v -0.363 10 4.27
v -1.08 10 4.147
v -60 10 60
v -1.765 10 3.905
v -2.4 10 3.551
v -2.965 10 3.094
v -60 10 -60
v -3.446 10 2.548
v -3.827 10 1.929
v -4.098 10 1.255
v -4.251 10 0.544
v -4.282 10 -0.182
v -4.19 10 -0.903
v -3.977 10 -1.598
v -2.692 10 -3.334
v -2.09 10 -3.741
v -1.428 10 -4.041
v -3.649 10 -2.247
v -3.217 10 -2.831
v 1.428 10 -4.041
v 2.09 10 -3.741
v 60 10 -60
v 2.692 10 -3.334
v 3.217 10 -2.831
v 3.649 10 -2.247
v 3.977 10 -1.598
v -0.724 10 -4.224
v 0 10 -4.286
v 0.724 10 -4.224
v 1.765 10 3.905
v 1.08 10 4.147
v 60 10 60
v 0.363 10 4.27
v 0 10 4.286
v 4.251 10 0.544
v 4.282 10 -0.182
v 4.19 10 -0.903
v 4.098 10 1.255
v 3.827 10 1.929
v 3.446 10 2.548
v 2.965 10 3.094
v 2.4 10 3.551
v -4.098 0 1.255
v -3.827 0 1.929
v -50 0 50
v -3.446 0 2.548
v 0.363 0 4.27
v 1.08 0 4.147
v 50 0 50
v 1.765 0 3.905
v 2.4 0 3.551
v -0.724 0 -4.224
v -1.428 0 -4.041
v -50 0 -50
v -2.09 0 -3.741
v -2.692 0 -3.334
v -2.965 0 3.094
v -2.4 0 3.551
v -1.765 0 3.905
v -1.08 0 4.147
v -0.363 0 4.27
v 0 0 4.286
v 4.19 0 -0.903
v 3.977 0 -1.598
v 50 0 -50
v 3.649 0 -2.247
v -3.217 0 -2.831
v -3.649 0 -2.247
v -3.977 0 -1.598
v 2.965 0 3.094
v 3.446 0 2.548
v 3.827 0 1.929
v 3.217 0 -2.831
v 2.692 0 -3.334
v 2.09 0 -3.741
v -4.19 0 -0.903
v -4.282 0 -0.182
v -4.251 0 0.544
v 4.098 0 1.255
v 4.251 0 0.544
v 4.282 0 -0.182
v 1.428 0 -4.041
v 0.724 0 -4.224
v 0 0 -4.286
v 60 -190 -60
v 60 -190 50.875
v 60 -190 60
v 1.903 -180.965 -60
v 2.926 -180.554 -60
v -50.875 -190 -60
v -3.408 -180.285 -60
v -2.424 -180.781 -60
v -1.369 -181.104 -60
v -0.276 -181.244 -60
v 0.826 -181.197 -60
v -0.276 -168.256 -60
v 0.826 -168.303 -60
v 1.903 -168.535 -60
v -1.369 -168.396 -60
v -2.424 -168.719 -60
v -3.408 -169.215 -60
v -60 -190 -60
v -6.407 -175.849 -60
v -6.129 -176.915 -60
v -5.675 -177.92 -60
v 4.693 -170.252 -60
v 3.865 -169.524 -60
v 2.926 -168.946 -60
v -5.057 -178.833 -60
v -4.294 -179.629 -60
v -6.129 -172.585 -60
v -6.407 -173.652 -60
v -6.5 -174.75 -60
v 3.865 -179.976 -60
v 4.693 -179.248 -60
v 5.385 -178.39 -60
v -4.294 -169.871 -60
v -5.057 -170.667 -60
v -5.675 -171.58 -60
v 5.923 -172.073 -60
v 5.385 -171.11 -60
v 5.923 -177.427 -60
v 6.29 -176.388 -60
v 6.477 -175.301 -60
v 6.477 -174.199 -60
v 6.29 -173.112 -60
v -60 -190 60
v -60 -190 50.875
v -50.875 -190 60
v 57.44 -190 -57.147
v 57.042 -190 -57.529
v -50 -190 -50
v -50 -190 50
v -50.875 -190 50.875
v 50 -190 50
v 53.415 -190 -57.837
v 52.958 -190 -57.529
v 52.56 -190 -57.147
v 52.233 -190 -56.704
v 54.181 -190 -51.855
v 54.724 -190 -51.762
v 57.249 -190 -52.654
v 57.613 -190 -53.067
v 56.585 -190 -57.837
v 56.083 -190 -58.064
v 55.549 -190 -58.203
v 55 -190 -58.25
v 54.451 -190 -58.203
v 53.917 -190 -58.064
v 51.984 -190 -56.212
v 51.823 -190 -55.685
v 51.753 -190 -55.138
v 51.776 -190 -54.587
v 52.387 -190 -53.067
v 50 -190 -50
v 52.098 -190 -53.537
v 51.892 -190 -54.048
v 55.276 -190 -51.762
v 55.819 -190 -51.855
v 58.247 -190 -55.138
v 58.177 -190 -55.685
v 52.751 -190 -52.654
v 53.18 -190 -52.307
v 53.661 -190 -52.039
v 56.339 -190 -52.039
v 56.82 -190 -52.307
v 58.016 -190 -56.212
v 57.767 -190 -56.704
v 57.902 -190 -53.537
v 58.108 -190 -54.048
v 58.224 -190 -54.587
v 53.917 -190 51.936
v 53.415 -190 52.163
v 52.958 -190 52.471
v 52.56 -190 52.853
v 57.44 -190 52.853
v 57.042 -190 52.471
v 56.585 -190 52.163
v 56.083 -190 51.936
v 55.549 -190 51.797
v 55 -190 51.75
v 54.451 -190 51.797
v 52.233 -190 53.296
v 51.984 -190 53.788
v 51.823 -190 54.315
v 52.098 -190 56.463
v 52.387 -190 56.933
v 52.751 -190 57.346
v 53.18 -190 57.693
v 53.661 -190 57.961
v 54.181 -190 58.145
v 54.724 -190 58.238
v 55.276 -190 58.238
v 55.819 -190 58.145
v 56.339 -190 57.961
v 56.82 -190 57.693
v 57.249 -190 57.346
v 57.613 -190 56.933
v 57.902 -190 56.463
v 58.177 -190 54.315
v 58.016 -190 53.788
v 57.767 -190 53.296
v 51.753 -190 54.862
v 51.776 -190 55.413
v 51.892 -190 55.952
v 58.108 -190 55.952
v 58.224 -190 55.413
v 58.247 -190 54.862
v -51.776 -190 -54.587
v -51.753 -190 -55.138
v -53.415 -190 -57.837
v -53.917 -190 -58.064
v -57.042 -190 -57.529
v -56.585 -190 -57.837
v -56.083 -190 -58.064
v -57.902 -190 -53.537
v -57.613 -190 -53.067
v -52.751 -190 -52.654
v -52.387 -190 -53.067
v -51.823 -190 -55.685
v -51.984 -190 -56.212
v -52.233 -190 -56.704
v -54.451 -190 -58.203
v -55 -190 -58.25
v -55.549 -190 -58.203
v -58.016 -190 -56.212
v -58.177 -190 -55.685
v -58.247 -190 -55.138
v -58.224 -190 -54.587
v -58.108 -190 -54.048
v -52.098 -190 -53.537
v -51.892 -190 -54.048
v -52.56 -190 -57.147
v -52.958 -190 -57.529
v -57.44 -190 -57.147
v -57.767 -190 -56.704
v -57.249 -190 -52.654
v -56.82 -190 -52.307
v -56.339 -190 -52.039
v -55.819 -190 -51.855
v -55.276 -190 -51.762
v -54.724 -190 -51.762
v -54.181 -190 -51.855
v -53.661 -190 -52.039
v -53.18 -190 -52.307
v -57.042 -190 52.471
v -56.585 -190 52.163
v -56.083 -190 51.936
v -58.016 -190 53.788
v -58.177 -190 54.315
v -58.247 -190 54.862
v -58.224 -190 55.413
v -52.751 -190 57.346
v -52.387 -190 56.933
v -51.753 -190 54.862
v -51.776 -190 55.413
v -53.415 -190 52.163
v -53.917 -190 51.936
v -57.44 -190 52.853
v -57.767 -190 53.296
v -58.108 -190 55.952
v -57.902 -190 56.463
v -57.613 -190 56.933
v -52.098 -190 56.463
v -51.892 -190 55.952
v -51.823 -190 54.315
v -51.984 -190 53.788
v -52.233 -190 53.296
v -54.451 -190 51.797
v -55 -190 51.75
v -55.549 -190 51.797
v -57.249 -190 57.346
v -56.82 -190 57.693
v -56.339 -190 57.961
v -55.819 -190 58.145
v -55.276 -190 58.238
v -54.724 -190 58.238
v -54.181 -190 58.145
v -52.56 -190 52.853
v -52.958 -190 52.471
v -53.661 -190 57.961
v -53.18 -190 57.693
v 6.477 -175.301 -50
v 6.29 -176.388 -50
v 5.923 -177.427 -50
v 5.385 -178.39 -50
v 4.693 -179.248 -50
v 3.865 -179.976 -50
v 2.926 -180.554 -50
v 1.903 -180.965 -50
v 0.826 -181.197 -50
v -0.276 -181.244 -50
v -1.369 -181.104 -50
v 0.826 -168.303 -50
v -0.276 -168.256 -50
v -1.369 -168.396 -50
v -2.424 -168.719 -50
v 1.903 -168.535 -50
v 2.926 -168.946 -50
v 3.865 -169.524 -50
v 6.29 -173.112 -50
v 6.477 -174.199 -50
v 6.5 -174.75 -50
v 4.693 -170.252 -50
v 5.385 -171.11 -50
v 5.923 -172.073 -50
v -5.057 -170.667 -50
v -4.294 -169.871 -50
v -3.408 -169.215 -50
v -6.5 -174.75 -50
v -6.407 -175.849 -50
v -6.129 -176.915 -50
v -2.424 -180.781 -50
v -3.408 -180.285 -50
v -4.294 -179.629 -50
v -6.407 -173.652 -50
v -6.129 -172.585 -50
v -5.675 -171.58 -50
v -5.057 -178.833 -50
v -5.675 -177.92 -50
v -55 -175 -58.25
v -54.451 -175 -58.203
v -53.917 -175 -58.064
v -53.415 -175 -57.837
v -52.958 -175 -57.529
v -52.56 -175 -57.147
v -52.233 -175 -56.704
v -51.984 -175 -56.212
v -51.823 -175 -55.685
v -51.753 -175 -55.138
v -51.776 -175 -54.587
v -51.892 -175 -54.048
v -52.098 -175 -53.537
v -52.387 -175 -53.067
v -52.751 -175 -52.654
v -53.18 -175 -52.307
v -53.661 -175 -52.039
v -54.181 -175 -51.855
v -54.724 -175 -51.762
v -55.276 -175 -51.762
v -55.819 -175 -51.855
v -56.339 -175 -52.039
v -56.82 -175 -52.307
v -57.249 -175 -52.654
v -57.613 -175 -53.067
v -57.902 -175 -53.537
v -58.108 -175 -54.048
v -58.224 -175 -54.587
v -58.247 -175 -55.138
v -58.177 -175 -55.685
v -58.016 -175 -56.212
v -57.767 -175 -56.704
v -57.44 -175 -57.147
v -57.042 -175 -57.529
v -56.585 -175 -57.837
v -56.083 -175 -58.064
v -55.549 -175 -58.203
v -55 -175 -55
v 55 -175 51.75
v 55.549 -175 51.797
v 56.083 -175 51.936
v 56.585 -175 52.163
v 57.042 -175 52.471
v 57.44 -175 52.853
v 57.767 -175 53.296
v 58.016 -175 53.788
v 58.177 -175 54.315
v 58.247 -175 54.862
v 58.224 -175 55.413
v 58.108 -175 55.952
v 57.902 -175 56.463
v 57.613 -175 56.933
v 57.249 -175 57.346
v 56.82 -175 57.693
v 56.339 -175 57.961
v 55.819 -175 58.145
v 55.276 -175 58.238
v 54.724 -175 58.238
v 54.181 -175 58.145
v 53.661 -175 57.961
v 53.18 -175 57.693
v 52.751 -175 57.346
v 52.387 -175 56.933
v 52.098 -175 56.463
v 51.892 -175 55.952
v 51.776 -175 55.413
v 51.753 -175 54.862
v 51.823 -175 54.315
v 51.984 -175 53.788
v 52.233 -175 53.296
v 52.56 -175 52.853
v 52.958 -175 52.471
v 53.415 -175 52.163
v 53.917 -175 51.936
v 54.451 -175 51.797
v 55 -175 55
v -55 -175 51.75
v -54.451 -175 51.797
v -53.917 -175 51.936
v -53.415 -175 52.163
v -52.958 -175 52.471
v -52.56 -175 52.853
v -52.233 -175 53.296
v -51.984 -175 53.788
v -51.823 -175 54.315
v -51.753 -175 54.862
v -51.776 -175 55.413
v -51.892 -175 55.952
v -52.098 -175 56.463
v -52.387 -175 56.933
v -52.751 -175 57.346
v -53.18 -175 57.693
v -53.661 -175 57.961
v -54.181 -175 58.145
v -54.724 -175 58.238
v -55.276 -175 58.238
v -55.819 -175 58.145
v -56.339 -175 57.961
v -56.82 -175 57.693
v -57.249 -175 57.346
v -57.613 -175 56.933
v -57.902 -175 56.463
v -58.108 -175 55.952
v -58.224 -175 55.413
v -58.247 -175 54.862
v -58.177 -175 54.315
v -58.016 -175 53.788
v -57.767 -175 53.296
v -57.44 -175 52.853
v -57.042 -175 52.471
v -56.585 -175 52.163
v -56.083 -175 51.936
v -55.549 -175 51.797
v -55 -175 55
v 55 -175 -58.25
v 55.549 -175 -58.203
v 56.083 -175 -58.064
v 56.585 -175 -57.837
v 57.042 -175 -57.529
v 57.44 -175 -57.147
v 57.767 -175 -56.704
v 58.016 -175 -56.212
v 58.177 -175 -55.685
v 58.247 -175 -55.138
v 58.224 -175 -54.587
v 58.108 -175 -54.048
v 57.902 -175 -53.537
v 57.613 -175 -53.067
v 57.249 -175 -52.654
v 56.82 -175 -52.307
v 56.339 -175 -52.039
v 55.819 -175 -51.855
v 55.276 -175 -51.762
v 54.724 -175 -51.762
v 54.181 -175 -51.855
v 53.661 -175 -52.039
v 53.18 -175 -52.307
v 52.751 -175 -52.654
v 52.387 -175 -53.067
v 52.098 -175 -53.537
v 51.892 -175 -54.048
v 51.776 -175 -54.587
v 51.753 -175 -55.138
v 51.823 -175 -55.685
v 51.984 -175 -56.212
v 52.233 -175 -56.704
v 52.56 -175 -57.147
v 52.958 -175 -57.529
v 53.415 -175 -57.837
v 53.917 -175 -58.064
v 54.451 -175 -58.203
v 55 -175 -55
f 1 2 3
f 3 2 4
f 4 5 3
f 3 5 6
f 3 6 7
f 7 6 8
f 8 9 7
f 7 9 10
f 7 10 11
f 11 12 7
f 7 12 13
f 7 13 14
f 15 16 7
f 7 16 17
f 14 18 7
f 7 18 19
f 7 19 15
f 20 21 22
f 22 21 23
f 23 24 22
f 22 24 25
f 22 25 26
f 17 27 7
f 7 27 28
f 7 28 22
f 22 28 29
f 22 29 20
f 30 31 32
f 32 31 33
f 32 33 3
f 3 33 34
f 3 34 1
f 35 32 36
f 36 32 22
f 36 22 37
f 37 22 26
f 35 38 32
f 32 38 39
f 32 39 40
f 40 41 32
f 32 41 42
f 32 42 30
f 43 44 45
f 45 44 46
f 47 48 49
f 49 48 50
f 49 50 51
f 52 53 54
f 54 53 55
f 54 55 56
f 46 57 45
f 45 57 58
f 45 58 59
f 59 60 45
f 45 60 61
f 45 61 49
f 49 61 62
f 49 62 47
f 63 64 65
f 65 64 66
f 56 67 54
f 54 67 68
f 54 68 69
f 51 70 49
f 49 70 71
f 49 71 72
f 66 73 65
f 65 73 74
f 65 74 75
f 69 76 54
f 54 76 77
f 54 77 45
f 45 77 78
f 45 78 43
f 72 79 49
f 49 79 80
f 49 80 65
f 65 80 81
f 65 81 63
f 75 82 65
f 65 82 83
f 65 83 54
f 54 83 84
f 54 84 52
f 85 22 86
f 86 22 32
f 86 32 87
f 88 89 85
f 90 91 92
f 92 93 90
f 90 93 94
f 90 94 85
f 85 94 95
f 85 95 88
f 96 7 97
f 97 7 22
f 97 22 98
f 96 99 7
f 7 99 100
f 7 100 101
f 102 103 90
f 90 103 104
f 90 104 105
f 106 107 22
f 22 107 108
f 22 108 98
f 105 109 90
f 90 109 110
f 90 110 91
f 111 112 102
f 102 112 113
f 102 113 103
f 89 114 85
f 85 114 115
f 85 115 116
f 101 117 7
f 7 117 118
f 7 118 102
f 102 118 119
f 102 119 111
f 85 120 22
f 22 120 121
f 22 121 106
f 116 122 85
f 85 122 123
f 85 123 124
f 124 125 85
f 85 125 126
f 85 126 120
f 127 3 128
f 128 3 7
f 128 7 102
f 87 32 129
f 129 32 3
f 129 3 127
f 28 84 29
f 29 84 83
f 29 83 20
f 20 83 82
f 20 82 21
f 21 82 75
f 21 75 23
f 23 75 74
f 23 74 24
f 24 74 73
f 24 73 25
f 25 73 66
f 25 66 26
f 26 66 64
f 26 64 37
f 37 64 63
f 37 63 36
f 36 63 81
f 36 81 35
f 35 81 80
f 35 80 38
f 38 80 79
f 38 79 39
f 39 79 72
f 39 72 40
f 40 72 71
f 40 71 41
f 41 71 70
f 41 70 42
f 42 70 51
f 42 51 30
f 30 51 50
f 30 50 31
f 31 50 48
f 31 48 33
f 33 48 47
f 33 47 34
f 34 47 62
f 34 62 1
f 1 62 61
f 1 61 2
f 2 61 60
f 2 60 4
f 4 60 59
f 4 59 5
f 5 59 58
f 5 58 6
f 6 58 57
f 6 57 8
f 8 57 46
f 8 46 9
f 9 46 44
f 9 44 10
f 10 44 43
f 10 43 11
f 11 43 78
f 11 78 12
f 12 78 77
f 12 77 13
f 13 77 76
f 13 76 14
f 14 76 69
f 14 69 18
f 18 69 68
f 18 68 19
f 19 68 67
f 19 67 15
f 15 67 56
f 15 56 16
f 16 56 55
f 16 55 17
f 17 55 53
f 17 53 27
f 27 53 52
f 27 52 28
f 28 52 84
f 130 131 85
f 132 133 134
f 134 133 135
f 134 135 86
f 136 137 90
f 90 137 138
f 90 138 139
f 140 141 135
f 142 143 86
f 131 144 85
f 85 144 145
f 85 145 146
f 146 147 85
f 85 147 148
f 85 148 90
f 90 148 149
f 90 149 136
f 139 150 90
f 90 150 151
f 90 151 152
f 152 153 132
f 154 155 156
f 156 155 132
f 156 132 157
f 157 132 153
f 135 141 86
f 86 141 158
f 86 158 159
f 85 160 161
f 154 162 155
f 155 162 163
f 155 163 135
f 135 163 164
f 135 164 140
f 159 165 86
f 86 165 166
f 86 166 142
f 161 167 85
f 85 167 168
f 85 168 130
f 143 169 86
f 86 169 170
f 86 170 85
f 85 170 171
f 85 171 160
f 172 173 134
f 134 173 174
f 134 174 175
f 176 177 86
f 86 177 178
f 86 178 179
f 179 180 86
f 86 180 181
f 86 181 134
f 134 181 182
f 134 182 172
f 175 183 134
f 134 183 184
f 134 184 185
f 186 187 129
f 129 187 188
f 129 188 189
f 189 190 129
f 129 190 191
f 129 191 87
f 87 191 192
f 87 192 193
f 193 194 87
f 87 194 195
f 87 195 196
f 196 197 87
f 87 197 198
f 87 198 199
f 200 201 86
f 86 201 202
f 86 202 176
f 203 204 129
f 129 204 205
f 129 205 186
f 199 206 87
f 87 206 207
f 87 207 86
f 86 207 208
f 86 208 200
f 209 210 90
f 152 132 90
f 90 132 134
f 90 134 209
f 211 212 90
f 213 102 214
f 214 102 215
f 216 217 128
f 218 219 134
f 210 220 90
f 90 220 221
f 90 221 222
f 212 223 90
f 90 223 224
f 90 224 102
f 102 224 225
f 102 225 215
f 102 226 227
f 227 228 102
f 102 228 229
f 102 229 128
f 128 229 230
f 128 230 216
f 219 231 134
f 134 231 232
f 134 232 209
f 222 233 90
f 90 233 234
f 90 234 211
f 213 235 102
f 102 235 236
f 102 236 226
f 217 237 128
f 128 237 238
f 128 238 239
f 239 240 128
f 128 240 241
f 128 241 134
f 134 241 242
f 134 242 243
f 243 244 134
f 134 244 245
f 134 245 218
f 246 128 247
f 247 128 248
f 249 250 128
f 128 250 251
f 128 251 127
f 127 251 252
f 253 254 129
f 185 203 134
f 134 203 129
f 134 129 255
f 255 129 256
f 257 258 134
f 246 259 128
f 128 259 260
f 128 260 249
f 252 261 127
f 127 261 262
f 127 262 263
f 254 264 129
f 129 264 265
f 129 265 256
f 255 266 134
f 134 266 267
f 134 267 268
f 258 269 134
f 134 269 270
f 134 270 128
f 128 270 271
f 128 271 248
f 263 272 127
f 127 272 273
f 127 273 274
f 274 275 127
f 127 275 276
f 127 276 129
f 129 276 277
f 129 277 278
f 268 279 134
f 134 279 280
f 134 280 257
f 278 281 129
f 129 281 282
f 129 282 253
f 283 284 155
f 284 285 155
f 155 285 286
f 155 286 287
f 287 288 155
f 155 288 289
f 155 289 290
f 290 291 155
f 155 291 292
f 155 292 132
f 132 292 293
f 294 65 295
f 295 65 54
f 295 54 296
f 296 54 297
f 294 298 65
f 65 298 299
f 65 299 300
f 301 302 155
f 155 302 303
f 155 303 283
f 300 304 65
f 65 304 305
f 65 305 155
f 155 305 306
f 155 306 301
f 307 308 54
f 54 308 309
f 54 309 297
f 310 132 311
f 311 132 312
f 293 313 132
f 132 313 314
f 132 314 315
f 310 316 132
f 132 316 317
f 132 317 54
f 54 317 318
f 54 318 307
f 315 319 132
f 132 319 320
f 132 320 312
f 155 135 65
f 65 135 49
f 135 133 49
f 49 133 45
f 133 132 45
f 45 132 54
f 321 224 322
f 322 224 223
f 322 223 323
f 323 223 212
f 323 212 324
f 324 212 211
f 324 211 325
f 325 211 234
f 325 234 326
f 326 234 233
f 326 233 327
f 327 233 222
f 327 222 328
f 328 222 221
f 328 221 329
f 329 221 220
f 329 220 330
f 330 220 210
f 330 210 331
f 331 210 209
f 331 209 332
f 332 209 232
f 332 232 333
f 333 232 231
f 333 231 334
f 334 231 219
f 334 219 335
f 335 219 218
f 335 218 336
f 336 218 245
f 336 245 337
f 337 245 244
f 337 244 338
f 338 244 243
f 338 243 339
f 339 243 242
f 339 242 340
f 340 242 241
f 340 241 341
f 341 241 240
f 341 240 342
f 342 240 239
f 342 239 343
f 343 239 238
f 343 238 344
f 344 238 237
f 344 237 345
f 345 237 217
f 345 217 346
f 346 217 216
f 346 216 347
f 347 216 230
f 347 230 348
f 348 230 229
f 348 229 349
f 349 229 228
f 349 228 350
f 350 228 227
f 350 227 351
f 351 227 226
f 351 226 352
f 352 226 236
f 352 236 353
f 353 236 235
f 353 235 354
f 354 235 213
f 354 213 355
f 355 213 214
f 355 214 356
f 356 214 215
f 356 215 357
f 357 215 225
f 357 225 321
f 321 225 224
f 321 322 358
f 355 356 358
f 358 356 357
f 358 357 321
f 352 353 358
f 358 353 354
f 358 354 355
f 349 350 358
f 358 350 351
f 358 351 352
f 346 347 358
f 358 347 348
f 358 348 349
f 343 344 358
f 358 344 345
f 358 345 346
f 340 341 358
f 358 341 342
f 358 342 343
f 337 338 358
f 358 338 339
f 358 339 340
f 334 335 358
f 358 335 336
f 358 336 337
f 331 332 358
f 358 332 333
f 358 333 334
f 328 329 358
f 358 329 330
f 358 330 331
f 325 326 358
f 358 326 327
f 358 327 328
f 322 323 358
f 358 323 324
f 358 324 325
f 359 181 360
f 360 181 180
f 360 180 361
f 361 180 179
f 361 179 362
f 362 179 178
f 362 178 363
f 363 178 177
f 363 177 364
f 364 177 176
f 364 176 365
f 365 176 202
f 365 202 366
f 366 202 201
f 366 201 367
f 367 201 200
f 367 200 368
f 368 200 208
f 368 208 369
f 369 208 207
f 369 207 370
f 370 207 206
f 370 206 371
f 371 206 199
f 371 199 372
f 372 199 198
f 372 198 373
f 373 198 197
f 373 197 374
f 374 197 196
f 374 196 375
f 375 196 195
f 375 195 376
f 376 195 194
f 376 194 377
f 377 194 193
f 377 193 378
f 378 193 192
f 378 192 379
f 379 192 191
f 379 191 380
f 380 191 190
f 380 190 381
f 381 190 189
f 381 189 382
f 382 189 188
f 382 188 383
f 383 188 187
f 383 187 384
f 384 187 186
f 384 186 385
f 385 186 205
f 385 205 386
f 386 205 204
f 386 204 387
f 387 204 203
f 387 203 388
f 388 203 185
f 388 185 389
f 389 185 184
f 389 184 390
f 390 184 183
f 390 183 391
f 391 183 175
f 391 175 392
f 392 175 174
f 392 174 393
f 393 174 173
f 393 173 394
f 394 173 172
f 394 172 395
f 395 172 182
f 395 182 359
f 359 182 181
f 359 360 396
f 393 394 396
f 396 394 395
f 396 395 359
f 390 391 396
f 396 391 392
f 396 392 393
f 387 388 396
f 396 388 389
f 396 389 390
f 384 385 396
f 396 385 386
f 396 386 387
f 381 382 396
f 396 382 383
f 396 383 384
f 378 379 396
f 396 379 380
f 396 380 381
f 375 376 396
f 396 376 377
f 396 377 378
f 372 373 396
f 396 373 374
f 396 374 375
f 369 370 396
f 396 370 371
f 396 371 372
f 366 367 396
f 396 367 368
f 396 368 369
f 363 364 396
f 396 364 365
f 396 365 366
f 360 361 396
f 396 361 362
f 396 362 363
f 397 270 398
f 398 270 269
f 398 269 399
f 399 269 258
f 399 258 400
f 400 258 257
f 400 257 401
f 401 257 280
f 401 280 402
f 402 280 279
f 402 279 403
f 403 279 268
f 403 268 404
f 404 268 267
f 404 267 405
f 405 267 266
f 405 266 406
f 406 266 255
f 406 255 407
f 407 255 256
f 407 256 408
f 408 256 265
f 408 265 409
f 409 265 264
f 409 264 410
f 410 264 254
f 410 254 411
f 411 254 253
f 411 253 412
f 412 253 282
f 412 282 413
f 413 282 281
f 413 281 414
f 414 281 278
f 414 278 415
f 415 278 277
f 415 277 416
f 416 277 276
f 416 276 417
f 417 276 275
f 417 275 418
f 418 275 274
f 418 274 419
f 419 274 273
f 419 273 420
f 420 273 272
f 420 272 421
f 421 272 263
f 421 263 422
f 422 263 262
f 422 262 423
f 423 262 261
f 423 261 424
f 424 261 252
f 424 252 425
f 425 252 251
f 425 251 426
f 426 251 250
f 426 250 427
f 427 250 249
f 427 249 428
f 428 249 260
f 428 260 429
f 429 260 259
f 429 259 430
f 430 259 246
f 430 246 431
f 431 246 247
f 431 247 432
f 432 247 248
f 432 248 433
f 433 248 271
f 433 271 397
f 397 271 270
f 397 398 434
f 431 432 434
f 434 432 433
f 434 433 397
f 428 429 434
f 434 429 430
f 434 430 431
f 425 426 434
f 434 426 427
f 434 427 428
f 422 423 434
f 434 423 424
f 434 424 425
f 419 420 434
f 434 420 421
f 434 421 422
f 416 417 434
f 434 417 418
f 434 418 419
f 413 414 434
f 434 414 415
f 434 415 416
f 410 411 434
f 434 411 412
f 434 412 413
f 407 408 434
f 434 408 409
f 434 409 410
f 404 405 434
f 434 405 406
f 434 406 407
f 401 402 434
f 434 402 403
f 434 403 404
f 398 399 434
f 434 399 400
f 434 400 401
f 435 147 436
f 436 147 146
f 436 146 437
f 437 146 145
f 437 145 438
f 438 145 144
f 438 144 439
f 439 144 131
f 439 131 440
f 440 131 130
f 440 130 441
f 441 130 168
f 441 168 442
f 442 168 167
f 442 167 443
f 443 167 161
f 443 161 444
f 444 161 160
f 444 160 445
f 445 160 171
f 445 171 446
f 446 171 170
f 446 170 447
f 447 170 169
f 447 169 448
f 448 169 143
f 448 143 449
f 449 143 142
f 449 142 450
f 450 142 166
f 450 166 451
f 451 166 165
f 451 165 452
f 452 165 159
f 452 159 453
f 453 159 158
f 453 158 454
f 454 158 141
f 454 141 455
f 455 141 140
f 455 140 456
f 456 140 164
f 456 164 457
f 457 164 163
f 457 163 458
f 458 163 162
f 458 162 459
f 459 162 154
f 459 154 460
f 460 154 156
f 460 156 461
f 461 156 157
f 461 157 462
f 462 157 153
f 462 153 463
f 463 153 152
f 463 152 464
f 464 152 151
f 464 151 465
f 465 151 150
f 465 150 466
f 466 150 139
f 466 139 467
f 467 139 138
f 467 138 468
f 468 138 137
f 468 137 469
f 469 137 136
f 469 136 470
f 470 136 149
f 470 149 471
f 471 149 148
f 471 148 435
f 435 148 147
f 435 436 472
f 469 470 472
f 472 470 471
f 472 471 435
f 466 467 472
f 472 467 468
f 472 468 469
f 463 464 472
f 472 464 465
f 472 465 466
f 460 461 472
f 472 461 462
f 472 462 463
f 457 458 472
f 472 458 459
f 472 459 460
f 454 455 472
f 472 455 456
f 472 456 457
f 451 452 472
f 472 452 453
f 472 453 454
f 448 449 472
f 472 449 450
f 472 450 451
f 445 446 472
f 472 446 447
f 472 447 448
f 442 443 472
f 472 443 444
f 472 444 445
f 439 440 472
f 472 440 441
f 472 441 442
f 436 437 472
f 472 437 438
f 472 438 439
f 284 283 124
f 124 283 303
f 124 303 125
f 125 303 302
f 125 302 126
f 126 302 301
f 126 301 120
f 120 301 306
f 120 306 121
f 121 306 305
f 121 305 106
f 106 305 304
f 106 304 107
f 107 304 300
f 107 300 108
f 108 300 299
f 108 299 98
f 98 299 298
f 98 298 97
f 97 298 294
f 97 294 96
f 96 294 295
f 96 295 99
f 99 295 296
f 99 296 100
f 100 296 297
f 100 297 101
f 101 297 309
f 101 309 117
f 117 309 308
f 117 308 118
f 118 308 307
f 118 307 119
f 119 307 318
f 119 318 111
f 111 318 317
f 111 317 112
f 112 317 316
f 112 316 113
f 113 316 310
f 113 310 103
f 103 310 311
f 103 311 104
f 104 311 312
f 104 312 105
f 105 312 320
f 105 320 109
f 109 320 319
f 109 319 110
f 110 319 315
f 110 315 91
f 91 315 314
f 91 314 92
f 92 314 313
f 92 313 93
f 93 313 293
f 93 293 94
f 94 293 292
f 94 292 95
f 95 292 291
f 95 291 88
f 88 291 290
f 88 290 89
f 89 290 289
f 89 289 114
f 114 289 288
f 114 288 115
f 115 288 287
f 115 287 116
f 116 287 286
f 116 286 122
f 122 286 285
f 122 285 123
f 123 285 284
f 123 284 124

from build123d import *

# Parameters (mm, degrees)
SKETCH1_W           = 120
SKETCH1_H           = 120
SKETCH1_R           = 4.285714286
BOSS_EXTRUDE1_DEPTH = 10
SKETCH2_W           = 120
SKETCH2_H           = 120
SKETCH2_W_2         = 100
SKETCH2_H_2         = 100
BOSS_EXTRUDE2_DEPTH = 190
SKETCH3_R           = 3.25
CUT_EXTRUDE1_DEPTH  = 15
CUT_EXTRUDE2_REACH  = 122
SKETCH4_R           = 6.5


with BuildPart() as part:
    # Sketch1 → Boss-Extrude1 (new body)
    with BuildSketch(Plane(origin=(0, 0, 0), x_dir=(1, 0, 0), z_dir=(0, 1, 0))):
        Rectangle(SKETCH1_W, SKETCH1_H)
        Circle(SKETCH1_R, mode=Mode.SUBTRACT)
    extrude(amount=BOSS_EXTRUDE1_DEPTH)

    # Sketch2 → Boss-Extrude2 (add)
    with BuildSketch(Plane.XZ):
        Rectangle(SKETCH2_W, SKETCH2_H)
        Rectangle(SKETCH2_W_2, SKETCH2_H_2, mode=Mode.SUBTRACT)
    extrude(amount=BOSS_EXTRUDE2_DEPTH)

    # Sketch3 → Cut-Extrude1 (cut)
    with BuildSketch(Plane.XZ.offset(190)):
        with Locations((-55, -55)):
            Circle(SKETCH3_R)
        with Locations((55, 55)):
            Circle(SKETCH3_R)
        with Locations((-55, 55)):
            Circle(SKETCH3_R)
        with Locations((55, -55)):
            Circle(SKETCH3_R)
    extrude(amount=-CUT_EXTRUDE1_DEPTH, mode=Mode.SUBTRACT)

    # Sketch4 → Cut-Extrude2 (cut, up to next)
    with BuildSketch(Plane(origin=(0, 0, -60), x_dir=(-1, 0, 0), z_dir=(0, 0, -1)), mode=Mode.PRIVATE) as cut_extrude2_sk1:
        with Locations((0, -174.75)):
            Circle(SKETCH4_R)
    cut_extrude2_tool1 = extrude(cut_extrude2_sk1.sketch, amount=-CUT_EXTRUDE2_REACH, mode=Mode.PRIVATE) & part.part
    add(cut_extrude2_tool1.solids().sort_by_distance((0, -174.75, -60))[0], mode=Mode.SUBTRACT)


solid = part.part
